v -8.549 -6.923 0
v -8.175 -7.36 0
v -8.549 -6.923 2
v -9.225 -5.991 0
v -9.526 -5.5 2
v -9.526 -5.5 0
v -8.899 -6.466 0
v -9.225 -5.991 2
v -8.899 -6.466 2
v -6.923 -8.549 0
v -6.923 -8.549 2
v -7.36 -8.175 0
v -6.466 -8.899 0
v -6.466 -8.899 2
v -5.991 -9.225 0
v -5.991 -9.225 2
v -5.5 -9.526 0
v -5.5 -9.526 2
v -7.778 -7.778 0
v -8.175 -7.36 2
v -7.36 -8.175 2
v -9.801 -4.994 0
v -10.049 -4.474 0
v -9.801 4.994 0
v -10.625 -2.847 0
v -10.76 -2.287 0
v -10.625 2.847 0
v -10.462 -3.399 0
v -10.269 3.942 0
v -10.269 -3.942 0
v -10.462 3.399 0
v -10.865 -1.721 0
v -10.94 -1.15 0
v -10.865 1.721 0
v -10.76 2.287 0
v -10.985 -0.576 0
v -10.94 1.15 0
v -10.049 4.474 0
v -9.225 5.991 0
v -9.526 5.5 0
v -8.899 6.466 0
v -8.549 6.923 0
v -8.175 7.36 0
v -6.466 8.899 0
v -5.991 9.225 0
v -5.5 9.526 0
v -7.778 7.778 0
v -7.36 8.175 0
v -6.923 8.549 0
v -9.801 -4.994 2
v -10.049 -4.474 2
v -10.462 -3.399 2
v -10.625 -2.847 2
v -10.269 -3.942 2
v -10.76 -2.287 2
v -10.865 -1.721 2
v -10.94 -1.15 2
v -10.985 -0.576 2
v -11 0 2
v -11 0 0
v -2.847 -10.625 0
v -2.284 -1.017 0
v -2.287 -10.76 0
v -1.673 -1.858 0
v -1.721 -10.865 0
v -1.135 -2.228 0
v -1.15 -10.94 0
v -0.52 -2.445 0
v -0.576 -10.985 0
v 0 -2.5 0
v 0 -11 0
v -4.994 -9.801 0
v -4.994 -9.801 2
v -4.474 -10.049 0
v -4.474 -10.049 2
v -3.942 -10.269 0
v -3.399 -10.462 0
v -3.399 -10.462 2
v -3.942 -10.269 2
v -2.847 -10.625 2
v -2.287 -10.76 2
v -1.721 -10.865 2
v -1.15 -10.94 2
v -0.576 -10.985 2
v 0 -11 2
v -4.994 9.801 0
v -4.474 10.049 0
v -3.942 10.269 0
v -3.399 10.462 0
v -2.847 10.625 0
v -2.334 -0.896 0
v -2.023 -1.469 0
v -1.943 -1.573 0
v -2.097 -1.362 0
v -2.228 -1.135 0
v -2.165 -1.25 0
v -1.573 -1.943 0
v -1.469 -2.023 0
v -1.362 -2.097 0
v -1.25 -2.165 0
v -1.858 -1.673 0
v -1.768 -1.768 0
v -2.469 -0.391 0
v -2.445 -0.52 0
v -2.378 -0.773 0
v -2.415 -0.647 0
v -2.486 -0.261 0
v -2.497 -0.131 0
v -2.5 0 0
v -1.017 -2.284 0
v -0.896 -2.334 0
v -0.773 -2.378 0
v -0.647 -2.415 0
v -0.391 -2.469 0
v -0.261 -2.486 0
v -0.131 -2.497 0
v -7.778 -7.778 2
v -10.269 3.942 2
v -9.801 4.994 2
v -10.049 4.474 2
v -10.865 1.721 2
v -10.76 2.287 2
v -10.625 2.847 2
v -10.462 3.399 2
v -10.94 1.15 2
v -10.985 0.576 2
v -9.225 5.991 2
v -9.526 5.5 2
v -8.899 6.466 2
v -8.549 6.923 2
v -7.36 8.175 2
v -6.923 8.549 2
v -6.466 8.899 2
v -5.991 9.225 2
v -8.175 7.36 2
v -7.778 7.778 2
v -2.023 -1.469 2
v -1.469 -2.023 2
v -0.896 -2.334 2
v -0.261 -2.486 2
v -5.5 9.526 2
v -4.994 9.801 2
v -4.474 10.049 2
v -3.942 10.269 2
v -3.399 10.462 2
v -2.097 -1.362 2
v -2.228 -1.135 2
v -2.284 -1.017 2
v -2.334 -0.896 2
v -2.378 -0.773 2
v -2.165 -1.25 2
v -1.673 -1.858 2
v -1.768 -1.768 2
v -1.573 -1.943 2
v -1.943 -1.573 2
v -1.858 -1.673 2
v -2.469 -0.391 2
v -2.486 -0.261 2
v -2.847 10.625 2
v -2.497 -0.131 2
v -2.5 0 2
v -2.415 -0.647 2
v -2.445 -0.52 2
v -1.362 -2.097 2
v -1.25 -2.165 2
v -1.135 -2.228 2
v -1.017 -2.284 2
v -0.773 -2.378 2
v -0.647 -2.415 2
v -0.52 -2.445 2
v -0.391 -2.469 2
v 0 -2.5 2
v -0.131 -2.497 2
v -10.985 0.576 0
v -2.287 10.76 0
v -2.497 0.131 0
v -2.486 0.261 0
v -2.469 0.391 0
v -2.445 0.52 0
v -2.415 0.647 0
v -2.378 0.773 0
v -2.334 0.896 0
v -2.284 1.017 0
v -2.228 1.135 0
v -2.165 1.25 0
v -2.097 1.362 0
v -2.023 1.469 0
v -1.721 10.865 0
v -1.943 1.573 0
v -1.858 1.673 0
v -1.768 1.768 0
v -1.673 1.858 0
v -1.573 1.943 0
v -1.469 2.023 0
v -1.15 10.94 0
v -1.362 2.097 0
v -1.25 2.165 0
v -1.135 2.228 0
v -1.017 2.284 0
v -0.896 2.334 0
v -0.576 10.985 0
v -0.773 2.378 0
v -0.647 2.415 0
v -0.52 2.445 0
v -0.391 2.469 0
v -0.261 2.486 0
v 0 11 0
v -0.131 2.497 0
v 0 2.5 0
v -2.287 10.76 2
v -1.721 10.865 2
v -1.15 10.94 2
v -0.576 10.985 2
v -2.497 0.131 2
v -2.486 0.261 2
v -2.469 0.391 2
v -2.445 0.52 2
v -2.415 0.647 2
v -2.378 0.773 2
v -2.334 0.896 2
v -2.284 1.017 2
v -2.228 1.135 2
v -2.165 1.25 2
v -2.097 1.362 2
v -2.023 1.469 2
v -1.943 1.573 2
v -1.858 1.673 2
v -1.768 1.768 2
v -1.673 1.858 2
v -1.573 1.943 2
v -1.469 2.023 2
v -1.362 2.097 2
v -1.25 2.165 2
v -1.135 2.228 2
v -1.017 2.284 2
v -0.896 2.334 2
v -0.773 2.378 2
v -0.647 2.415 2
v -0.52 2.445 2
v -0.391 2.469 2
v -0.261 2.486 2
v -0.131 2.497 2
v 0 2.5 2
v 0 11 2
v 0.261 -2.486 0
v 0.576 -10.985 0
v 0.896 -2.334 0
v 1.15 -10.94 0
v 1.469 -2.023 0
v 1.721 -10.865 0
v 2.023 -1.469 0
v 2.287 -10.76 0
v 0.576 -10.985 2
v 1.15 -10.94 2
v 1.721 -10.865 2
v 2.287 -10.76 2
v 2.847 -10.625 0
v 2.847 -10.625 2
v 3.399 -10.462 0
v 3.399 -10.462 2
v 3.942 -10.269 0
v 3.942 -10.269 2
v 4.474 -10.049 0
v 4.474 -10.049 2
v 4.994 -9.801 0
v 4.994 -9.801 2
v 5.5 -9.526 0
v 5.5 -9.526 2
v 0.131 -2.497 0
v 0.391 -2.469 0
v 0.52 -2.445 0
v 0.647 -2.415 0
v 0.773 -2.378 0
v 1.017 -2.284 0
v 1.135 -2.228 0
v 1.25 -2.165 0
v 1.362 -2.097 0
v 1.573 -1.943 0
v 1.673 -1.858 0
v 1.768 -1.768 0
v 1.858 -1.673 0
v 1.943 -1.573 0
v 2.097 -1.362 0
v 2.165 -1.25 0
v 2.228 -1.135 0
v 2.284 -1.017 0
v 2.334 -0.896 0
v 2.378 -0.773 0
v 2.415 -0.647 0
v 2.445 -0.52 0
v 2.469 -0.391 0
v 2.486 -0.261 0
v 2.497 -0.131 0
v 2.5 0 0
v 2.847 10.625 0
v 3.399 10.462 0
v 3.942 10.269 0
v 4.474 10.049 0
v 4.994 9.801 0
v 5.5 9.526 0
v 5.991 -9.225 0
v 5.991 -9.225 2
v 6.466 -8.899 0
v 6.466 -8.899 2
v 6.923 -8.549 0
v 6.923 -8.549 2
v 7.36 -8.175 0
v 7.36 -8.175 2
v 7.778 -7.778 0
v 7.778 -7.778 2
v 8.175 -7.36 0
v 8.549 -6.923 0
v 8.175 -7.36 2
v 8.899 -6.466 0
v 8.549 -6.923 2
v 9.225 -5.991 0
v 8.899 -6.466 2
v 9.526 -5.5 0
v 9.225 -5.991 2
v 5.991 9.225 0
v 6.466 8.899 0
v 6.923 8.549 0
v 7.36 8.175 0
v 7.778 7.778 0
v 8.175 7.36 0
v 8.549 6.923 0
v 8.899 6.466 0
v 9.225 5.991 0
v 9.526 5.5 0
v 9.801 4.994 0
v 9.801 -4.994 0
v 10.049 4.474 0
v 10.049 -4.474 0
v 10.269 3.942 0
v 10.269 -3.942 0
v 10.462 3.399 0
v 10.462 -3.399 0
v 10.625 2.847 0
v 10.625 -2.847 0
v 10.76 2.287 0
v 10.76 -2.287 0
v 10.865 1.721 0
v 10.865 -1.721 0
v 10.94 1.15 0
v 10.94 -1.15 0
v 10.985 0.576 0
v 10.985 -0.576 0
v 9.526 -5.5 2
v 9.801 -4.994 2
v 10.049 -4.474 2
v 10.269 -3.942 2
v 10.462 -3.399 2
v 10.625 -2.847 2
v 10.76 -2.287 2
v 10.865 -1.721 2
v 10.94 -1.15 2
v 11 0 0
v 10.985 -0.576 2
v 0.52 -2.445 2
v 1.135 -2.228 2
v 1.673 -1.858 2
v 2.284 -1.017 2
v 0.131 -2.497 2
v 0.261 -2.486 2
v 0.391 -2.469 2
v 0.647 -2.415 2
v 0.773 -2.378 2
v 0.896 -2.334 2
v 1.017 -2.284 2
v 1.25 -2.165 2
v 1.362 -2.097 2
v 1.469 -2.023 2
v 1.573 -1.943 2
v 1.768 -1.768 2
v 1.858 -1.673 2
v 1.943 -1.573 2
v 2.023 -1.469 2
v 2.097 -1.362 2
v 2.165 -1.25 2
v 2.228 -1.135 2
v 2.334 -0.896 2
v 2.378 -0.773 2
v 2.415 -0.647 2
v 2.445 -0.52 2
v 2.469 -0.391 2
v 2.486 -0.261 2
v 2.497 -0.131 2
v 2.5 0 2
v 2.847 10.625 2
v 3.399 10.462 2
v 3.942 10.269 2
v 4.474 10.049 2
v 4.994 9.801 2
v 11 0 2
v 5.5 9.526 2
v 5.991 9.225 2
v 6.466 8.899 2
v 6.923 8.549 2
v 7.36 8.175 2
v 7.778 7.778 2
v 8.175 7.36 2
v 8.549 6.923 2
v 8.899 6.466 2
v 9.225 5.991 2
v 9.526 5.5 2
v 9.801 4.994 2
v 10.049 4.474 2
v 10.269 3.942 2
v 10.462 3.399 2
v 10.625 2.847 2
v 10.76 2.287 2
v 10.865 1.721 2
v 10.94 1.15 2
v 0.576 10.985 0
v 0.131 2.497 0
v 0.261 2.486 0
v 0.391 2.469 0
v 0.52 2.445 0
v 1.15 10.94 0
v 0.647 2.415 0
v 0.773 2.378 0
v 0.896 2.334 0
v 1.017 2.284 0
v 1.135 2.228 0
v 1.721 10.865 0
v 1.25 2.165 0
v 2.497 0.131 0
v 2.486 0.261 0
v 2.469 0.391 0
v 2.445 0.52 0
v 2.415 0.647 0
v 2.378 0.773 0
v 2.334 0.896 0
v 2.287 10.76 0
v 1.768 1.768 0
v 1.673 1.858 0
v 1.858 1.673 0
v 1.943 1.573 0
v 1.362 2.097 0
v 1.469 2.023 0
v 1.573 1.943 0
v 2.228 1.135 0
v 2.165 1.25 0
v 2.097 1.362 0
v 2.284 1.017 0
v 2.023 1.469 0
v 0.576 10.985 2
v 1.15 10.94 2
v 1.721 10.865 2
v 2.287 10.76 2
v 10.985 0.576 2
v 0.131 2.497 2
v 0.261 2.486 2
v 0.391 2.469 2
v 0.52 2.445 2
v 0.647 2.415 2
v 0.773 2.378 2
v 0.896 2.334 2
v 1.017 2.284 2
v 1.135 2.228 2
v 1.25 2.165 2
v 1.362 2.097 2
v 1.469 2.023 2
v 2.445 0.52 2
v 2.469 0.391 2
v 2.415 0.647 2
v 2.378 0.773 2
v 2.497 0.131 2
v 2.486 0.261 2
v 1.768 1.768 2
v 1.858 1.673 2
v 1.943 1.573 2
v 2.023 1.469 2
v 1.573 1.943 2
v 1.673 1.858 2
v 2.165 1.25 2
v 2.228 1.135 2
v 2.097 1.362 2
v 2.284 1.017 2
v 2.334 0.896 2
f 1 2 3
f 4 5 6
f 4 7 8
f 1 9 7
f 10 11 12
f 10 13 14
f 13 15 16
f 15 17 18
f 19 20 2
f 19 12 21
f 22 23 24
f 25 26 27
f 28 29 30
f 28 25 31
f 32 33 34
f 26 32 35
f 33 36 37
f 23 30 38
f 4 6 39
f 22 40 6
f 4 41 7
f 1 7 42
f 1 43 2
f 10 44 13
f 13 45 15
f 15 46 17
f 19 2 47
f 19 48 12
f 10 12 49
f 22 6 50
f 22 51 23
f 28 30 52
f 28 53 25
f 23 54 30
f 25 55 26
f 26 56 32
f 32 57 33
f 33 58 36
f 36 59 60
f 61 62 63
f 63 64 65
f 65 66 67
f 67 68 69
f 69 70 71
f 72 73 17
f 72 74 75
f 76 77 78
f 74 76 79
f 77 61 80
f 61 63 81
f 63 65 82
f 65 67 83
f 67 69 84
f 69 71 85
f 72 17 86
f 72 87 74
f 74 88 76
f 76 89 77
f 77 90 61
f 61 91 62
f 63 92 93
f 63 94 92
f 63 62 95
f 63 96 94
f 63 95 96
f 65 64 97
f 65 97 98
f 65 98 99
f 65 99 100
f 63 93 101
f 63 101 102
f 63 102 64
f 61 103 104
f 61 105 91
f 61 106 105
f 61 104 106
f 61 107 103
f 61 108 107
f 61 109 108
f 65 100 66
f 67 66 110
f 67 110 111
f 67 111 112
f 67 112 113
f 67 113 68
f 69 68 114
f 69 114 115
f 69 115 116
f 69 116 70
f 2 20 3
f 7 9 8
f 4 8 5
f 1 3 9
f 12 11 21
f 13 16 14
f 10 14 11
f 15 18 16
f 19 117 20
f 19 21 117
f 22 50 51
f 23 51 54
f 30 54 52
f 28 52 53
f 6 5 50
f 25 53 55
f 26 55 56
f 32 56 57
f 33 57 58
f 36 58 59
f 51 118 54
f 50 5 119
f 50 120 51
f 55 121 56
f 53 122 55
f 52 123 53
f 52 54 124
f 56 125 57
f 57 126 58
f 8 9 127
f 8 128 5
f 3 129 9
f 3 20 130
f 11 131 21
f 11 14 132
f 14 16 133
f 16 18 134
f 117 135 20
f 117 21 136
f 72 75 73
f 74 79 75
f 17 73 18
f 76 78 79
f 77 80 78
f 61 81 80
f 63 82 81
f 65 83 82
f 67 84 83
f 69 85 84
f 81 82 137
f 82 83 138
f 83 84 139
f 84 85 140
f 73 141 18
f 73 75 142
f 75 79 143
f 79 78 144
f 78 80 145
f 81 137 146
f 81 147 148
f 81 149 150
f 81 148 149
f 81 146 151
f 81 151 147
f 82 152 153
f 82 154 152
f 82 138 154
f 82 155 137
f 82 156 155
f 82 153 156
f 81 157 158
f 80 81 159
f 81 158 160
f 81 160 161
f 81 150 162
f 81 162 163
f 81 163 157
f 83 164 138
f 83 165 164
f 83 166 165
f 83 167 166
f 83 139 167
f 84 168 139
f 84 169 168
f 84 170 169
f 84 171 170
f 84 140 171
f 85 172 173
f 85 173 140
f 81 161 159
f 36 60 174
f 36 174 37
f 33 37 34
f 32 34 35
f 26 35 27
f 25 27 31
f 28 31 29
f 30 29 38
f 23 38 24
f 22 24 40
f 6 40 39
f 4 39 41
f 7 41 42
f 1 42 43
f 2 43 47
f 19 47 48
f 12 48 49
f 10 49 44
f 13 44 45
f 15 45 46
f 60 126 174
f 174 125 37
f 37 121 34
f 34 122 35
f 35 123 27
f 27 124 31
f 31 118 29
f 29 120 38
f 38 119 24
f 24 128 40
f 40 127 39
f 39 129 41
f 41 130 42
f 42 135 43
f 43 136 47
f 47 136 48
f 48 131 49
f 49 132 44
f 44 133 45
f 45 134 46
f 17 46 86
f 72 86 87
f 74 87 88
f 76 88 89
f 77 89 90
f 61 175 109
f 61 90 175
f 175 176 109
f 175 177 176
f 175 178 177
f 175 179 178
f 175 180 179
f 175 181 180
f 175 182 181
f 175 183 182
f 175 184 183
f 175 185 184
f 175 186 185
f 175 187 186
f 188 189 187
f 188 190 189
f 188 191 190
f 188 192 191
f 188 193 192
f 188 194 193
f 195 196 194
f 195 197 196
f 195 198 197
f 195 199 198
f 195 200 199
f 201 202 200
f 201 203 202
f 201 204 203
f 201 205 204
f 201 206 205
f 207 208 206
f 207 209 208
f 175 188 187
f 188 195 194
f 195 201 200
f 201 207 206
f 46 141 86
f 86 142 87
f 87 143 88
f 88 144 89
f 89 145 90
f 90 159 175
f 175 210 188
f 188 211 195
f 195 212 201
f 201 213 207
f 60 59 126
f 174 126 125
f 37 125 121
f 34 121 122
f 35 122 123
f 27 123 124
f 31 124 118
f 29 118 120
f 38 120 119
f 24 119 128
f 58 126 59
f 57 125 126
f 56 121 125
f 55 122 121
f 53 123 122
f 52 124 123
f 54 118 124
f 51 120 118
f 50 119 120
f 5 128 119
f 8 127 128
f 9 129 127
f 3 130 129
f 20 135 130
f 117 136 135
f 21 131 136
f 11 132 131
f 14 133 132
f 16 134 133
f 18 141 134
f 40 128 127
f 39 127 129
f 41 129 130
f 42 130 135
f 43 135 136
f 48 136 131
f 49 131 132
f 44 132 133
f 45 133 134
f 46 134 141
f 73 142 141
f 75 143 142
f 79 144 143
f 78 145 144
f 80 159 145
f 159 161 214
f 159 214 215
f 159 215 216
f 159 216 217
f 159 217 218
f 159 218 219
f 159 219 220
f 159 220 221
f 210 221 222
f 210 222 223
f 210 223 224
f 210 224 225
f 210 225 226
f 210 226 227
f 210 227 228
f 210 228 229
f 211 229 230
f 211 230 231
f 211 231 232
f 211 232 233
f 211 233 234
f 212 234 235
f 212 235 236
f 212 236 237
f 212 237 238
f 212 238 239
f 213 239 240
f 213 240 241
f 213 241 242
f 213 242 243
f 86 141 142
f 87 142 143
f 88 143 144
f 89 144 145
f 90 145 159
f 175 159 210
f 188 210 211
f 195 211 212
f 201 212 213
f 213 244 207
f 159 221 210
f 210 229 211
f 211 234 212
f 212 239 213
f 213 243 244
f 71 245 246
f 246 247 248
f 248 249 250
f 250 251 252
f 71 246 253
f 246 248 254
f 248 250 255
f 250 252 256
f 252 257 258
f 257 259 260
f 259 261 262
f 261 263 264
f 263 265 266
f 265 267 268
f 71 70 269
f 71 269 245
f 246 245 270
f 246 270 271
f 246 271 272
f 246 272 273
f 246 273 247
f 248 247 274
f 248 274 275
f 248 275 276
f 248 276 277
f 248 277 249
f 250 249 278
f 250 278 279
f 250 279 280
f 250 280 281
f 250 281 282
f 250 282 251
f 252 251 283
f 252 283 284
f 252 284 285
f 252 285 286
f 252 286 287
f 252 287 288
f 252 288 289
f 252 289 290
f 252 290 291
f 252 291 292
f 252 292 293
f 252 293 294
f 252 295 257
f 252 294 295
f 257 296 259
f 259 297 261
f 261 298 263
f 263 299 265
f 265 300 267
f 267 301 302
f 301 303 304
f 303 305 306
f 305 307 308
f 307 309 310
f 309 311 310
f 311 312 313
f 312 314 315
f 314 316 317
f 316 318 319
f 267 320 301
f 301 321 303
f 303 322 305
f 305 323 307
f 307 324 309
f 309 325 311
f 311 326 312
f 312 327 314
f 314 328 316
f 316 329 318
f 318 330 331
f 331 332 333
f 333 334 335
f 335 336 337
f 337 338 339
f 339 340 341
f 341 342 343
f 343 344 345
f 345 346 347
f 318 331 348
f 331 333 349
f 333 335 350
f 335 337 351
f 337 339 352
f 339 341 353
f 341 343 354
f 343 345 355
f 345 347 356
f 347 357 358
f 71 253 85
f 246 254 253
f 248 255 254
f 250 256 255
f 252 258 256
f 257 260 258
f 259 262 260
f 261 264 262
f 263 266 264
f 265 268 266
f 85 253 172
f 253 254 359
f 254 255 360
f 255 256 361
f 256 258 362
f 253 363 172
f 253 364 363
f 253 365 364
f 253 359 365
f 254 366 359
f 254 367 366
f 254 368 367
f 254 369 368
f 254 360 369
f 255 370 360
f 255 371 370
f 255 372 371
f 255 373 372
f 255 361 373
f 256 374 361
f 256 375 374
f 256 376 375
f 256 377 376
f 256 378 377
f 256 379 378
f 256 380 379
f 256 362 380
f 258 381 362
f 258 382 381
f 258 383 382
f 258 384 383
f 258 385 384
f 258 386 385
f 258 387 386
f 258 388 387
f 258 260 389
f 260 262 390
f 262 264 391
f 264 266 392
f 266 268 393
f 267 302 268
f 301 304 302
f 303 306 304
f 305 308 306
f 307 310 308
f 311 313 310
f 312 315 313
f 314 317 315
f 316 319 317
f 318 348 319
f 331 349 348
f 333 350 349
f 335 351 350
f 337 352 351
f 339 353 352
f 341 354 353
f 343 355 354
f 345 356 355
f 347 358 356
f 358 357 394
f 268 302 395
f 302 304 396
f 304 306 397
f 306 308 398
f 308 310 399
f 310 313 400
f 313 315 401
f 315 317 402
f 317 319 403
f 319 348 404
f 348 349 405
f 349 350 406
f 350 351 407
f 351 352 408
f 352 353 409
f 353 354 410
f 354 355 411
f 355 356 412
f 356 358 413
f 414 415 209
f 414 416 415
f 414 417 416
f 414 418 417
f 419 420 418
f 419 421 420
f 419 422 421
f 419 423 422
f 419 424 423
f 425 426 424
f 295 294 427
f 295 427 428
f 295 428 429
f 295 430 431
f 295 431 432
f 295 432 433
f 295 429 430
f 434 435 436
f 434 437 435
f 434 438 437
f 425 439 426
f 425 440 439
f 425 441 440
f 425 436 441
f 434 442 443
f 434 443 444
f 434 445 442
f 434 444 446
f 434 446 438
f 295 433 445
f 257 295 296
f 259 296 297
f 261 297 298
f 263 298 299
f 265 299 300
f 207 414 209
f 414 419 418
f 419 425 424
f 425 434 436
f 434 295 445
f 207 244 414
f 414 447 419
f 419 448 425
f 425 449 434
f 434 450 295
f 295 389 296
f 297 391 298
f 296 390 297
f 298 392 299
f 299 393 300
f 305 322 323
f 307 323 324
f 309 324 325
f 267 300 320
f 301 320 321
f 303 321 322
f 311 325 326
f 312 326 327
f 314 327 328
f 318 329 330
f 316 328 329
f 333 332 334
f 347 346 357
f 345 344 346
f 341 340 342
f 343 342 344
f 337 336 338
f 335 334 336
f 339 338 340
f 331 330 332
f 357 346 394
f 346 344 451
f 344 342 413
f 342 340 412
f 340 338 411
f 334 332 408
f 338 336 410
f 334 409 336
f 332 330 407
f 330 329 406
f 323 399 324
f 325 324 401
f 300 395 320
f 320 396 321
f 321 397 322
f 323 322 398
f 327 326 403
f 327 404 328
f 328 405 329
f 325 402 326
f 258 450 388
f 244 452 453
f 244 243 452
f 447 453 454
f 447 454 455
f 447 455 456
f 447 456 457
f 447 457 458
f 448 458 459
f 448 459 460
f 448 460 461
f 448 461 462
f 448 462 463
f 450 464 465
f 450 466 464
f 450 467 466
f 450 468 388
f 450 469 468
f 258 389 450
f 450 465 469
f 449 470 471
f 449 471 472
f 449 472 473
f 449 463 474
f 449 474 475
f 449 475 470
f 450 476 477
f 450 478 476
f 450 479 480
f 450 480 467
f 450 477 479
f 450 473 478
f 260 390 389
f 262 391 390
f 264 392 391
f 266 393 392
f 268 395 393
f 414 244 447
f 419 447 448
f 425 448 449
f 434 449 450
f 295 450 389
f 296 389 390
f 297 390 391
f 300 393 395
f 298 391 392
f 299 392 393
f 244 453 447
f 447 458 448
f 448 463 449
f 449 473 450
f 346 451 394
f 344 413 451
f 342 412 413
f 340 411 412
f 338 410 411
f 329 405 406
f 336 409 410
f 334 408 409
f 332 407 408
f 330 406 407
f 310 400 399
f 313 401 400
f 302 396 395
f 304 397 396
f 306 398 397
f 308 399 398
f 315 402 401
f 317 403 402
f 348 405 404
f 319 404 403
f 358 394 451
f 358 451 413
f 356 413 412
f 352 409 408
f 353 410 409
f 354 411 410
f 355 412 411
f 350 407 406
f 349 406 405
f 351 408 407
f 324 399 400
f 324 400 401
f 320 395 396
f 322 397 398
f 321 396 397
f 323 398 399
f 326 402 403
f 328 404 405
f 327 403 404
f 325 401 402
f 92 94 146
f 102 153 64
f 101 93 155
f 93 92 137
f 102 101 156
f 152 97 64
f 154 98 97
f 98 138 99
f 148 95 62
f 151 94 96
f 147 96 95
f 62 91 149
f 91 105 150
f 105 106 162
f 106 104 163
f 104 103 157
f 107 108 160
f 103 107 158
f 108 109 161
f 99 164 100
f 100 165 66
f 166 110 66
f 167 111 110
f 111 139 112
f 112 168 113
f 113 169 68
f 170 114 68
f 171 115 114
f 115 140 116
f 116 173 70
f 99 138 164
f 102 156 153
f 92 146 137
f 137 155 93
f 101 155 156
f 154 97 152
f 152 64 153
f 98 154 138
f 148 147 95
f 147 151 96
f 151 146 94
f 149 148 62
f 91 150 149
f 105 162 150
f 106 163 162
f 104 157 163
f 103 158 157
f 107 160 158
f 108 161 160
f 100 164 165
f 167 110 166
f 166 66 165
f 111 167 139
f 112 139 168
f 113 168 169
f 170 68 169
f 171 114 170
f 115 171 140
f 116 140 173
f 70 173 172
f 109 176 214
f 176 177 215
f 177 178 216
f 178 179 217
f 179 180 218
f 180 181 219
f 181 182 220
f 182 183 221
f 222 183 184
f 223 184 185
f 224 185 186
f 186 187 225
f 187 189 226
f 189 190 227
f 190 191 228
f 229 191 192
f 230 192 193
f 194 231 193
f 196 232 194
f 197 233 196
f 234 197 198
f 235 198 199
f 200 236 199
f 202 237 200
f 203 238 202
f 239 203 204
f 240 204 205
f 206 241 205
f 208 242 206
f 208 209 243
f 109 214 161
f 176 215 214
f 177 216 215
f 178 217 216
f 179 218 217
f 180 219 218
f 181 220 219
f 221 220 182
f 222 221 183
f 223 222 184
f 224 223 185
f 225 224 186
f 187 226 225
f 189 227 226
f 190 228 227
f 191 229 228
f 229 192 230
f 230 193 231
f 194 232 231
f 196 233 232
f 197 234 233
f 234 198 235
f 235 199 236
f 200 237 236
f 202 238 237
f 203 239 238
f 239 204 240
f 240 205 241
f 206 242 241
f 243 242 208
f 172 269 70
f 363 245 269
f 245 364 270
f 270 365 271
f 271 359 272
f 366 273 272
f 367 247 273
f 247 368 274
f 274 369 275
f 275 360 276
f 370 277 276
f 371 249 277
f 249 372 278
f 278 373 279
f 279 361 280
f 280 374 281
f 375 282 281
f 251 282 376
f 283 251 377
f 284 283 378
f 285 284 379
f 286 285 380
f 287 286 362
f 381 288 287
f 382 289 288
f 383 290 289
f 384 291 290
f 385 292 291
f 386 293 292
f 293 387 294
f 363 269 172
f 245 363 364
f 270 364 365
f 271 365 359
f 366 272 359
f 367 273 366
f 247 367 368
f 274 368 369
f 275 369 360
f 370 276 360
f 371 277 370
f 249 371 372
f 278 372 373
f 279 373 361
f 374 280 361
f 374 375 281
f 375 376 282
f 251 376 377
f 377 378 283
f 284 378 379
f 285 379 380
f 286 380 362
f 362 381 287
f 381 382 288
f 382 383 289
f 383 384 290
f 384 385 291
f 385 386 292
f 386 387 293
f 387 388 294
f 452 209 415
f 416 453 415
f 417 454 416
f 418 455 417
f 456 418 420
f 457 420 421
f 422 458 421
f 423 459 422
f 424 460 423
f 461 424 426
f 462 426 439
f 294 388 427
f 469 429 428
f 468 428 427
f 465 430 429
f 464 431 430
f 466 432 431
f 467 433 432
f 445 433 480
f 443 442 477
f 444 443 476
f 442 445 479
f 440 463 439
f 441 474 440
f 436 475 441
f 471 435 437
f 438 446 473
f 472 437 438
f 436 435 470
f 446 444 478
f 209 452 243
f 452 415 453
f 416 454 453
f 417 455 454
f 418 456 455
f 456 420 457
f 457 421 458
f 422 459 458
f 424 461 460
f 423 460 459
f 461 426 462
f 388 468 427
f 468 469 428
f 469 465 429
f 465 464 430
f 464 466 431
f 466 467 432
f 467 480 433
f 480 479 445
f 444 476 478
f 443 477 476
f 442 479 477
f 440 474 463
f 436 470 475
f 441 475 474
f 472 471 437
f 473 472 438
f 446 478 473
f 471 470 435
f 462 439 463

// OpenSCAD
// file: C:/od/OneDrive/Documents/ChatGPT/oomlout_oobb_part_motor_gearbox_wave_drive_version_5/parts/oobb_part_motor_gearbox_wave_drive_version_5_12_to_1_reduction/nema17_reference.scad
// Visual reference matching the previous cycloidal project's 40 mm motor envelope.
// Face is Z=0; motor body extends towards -Z and shaft towards +Z.
// End caps, corner chamfers and connector are illustrative external details.
// This is purchased reference hardware, never a printable gearbox component.
module nema17_outline(width=42.3,depth=6,chamfer=3) {
    w=width/2;
    linear_extrude(depth) polygon([
        [-w+chamfer,-w],[w-chamfer,-w],[w,-w+chamfer],[w,w-chamfer],
        [w-chamfer,w],[-w+chamfer,w],[-w,w-chamfer],[-w,-w+chamfer]
    ]);
}
module nema17_front() {
    difference() {
        translate([0,0,-motor_cap_depth])
            nema17_outline(motor_body_width,motor_cap_depth,motor_corner_chamfer);
        for(x=[-motor_hole_pitch/2,motor_hole_pitch/2],y=[-motor_hole_pitch/2,motor_hole_pitch/2])
            translate([x,y,-motor_thread_depth]) cylinder(d=3,h=motor_thread_depth+0.01);
        translate([0,0,-motor_cap_depth-0.01]) cylinder(d=motor_shaft_diameter,h=motor_cap_depth+0.02);
    }
}
module nema17_stator() {
    translate([0,0,-motor_body_depth+motor_cap_depth])
        nema17_outline(motor_body_width,motor_body_depth-2*motor_cap_depth,motor_corner_chamfer);
}
module nema17_rear() {
    difference() {
        translate([0,0,-motor_body_depth])
            nema17_outline(motor_body_width,motor_cap_depth,motor_corner_chamfer);
        for(x=[-motor_hole_pitch/2,motor_hole_pitch/2],y=[-motor_hole_pitch/2,motor_hole_pitch/2])
            translate([x,y,-motor_body_depth-0.01]) cylinder(d=4.5,h=1.2);
    }
}
module nema17_pilot() {
    difference() {
        cylinder(d=motor_pilot_diameter,h=motor_pilot_height);
        translate([0,0,-0.01]) cylinder(d=motor_shaft_diameter,h=motor_pilot_height+0.02);
    }
}
module nema17_shaft() {
    linear_extrude(motor_shaft_length) intersection() {
        circle(d=motor_shaft_diameter);
        translate([-10,-10]) square([10+motor_shaft_diameter/2-motor_shaft_flat_depth,20]);
    }
}
module nema17_connector() {
    // Indicative connector envelope; actual cable exit depends on motor model.
    translate([-7,motor_body_width/2-1,-motor_body_depth+motor_cap_depth])
        cube([14,5,7]);
}
module nema17_reference() {
    color("Silver") { nema17_front(); nema17_rear(); nema17_pilot(); nema17_shaft(); }
    color([0.08,0.08,0.08]) nema17_stator();
    color([0.2,0.2,0.2]) nema17_connector();
}
// file: C:/od/OneDrive/Documents/ChatGPT/oomlout_oobb_part_motor_gearbox_wave_drive_version_5/parts/oobb_part_motor_gearbox_wave_drive_version_5_12_to_1_reduction/motor_reference_parameters.scad
// Purchased motor envelope. Recipe defines body, shaft and mounting dimensions.
motor_body_depth = 40.0;
motor_shaft_length = 24.0;
motor_hole_pitch = 31.0;
motor_thread_depth = 6.0;
motor_pilot_diameter = 22.0;
motor_pilot_height = 2.0;
motor_shaft_end_clearance = 0.5;
motor_thread_engagement = 5.2;
motor_shaft_diameter = 5.0;
motor_body_width = 42.3;
motor_cap_depth = 6.0;
motor_corner_chamfer = 3.0;
motor_shaft_flat_depth = 0.5;
motor_face_z = 0.0;
// main file
include <C:/od/OneDrive/Documents/ChatGPT/oomlout_oobb_part_motor_gearbox_wave_drive_version_5/parts/oobb_part_motor_gearbox_wave_drive_version_5_12_to_1_reduction/motor_reference_parameters.scad>
include <C:/od/OneDrive/Documents/ChatGPT/oomlout_oobb_part_motor_gearbox_wave_drive_version_5/parts/oobb_part_motor_gearbox_wave_drive_version_5_12_to_1_reduction/nema17_reference.scad>
$fn=120;
nema17_pilot();
